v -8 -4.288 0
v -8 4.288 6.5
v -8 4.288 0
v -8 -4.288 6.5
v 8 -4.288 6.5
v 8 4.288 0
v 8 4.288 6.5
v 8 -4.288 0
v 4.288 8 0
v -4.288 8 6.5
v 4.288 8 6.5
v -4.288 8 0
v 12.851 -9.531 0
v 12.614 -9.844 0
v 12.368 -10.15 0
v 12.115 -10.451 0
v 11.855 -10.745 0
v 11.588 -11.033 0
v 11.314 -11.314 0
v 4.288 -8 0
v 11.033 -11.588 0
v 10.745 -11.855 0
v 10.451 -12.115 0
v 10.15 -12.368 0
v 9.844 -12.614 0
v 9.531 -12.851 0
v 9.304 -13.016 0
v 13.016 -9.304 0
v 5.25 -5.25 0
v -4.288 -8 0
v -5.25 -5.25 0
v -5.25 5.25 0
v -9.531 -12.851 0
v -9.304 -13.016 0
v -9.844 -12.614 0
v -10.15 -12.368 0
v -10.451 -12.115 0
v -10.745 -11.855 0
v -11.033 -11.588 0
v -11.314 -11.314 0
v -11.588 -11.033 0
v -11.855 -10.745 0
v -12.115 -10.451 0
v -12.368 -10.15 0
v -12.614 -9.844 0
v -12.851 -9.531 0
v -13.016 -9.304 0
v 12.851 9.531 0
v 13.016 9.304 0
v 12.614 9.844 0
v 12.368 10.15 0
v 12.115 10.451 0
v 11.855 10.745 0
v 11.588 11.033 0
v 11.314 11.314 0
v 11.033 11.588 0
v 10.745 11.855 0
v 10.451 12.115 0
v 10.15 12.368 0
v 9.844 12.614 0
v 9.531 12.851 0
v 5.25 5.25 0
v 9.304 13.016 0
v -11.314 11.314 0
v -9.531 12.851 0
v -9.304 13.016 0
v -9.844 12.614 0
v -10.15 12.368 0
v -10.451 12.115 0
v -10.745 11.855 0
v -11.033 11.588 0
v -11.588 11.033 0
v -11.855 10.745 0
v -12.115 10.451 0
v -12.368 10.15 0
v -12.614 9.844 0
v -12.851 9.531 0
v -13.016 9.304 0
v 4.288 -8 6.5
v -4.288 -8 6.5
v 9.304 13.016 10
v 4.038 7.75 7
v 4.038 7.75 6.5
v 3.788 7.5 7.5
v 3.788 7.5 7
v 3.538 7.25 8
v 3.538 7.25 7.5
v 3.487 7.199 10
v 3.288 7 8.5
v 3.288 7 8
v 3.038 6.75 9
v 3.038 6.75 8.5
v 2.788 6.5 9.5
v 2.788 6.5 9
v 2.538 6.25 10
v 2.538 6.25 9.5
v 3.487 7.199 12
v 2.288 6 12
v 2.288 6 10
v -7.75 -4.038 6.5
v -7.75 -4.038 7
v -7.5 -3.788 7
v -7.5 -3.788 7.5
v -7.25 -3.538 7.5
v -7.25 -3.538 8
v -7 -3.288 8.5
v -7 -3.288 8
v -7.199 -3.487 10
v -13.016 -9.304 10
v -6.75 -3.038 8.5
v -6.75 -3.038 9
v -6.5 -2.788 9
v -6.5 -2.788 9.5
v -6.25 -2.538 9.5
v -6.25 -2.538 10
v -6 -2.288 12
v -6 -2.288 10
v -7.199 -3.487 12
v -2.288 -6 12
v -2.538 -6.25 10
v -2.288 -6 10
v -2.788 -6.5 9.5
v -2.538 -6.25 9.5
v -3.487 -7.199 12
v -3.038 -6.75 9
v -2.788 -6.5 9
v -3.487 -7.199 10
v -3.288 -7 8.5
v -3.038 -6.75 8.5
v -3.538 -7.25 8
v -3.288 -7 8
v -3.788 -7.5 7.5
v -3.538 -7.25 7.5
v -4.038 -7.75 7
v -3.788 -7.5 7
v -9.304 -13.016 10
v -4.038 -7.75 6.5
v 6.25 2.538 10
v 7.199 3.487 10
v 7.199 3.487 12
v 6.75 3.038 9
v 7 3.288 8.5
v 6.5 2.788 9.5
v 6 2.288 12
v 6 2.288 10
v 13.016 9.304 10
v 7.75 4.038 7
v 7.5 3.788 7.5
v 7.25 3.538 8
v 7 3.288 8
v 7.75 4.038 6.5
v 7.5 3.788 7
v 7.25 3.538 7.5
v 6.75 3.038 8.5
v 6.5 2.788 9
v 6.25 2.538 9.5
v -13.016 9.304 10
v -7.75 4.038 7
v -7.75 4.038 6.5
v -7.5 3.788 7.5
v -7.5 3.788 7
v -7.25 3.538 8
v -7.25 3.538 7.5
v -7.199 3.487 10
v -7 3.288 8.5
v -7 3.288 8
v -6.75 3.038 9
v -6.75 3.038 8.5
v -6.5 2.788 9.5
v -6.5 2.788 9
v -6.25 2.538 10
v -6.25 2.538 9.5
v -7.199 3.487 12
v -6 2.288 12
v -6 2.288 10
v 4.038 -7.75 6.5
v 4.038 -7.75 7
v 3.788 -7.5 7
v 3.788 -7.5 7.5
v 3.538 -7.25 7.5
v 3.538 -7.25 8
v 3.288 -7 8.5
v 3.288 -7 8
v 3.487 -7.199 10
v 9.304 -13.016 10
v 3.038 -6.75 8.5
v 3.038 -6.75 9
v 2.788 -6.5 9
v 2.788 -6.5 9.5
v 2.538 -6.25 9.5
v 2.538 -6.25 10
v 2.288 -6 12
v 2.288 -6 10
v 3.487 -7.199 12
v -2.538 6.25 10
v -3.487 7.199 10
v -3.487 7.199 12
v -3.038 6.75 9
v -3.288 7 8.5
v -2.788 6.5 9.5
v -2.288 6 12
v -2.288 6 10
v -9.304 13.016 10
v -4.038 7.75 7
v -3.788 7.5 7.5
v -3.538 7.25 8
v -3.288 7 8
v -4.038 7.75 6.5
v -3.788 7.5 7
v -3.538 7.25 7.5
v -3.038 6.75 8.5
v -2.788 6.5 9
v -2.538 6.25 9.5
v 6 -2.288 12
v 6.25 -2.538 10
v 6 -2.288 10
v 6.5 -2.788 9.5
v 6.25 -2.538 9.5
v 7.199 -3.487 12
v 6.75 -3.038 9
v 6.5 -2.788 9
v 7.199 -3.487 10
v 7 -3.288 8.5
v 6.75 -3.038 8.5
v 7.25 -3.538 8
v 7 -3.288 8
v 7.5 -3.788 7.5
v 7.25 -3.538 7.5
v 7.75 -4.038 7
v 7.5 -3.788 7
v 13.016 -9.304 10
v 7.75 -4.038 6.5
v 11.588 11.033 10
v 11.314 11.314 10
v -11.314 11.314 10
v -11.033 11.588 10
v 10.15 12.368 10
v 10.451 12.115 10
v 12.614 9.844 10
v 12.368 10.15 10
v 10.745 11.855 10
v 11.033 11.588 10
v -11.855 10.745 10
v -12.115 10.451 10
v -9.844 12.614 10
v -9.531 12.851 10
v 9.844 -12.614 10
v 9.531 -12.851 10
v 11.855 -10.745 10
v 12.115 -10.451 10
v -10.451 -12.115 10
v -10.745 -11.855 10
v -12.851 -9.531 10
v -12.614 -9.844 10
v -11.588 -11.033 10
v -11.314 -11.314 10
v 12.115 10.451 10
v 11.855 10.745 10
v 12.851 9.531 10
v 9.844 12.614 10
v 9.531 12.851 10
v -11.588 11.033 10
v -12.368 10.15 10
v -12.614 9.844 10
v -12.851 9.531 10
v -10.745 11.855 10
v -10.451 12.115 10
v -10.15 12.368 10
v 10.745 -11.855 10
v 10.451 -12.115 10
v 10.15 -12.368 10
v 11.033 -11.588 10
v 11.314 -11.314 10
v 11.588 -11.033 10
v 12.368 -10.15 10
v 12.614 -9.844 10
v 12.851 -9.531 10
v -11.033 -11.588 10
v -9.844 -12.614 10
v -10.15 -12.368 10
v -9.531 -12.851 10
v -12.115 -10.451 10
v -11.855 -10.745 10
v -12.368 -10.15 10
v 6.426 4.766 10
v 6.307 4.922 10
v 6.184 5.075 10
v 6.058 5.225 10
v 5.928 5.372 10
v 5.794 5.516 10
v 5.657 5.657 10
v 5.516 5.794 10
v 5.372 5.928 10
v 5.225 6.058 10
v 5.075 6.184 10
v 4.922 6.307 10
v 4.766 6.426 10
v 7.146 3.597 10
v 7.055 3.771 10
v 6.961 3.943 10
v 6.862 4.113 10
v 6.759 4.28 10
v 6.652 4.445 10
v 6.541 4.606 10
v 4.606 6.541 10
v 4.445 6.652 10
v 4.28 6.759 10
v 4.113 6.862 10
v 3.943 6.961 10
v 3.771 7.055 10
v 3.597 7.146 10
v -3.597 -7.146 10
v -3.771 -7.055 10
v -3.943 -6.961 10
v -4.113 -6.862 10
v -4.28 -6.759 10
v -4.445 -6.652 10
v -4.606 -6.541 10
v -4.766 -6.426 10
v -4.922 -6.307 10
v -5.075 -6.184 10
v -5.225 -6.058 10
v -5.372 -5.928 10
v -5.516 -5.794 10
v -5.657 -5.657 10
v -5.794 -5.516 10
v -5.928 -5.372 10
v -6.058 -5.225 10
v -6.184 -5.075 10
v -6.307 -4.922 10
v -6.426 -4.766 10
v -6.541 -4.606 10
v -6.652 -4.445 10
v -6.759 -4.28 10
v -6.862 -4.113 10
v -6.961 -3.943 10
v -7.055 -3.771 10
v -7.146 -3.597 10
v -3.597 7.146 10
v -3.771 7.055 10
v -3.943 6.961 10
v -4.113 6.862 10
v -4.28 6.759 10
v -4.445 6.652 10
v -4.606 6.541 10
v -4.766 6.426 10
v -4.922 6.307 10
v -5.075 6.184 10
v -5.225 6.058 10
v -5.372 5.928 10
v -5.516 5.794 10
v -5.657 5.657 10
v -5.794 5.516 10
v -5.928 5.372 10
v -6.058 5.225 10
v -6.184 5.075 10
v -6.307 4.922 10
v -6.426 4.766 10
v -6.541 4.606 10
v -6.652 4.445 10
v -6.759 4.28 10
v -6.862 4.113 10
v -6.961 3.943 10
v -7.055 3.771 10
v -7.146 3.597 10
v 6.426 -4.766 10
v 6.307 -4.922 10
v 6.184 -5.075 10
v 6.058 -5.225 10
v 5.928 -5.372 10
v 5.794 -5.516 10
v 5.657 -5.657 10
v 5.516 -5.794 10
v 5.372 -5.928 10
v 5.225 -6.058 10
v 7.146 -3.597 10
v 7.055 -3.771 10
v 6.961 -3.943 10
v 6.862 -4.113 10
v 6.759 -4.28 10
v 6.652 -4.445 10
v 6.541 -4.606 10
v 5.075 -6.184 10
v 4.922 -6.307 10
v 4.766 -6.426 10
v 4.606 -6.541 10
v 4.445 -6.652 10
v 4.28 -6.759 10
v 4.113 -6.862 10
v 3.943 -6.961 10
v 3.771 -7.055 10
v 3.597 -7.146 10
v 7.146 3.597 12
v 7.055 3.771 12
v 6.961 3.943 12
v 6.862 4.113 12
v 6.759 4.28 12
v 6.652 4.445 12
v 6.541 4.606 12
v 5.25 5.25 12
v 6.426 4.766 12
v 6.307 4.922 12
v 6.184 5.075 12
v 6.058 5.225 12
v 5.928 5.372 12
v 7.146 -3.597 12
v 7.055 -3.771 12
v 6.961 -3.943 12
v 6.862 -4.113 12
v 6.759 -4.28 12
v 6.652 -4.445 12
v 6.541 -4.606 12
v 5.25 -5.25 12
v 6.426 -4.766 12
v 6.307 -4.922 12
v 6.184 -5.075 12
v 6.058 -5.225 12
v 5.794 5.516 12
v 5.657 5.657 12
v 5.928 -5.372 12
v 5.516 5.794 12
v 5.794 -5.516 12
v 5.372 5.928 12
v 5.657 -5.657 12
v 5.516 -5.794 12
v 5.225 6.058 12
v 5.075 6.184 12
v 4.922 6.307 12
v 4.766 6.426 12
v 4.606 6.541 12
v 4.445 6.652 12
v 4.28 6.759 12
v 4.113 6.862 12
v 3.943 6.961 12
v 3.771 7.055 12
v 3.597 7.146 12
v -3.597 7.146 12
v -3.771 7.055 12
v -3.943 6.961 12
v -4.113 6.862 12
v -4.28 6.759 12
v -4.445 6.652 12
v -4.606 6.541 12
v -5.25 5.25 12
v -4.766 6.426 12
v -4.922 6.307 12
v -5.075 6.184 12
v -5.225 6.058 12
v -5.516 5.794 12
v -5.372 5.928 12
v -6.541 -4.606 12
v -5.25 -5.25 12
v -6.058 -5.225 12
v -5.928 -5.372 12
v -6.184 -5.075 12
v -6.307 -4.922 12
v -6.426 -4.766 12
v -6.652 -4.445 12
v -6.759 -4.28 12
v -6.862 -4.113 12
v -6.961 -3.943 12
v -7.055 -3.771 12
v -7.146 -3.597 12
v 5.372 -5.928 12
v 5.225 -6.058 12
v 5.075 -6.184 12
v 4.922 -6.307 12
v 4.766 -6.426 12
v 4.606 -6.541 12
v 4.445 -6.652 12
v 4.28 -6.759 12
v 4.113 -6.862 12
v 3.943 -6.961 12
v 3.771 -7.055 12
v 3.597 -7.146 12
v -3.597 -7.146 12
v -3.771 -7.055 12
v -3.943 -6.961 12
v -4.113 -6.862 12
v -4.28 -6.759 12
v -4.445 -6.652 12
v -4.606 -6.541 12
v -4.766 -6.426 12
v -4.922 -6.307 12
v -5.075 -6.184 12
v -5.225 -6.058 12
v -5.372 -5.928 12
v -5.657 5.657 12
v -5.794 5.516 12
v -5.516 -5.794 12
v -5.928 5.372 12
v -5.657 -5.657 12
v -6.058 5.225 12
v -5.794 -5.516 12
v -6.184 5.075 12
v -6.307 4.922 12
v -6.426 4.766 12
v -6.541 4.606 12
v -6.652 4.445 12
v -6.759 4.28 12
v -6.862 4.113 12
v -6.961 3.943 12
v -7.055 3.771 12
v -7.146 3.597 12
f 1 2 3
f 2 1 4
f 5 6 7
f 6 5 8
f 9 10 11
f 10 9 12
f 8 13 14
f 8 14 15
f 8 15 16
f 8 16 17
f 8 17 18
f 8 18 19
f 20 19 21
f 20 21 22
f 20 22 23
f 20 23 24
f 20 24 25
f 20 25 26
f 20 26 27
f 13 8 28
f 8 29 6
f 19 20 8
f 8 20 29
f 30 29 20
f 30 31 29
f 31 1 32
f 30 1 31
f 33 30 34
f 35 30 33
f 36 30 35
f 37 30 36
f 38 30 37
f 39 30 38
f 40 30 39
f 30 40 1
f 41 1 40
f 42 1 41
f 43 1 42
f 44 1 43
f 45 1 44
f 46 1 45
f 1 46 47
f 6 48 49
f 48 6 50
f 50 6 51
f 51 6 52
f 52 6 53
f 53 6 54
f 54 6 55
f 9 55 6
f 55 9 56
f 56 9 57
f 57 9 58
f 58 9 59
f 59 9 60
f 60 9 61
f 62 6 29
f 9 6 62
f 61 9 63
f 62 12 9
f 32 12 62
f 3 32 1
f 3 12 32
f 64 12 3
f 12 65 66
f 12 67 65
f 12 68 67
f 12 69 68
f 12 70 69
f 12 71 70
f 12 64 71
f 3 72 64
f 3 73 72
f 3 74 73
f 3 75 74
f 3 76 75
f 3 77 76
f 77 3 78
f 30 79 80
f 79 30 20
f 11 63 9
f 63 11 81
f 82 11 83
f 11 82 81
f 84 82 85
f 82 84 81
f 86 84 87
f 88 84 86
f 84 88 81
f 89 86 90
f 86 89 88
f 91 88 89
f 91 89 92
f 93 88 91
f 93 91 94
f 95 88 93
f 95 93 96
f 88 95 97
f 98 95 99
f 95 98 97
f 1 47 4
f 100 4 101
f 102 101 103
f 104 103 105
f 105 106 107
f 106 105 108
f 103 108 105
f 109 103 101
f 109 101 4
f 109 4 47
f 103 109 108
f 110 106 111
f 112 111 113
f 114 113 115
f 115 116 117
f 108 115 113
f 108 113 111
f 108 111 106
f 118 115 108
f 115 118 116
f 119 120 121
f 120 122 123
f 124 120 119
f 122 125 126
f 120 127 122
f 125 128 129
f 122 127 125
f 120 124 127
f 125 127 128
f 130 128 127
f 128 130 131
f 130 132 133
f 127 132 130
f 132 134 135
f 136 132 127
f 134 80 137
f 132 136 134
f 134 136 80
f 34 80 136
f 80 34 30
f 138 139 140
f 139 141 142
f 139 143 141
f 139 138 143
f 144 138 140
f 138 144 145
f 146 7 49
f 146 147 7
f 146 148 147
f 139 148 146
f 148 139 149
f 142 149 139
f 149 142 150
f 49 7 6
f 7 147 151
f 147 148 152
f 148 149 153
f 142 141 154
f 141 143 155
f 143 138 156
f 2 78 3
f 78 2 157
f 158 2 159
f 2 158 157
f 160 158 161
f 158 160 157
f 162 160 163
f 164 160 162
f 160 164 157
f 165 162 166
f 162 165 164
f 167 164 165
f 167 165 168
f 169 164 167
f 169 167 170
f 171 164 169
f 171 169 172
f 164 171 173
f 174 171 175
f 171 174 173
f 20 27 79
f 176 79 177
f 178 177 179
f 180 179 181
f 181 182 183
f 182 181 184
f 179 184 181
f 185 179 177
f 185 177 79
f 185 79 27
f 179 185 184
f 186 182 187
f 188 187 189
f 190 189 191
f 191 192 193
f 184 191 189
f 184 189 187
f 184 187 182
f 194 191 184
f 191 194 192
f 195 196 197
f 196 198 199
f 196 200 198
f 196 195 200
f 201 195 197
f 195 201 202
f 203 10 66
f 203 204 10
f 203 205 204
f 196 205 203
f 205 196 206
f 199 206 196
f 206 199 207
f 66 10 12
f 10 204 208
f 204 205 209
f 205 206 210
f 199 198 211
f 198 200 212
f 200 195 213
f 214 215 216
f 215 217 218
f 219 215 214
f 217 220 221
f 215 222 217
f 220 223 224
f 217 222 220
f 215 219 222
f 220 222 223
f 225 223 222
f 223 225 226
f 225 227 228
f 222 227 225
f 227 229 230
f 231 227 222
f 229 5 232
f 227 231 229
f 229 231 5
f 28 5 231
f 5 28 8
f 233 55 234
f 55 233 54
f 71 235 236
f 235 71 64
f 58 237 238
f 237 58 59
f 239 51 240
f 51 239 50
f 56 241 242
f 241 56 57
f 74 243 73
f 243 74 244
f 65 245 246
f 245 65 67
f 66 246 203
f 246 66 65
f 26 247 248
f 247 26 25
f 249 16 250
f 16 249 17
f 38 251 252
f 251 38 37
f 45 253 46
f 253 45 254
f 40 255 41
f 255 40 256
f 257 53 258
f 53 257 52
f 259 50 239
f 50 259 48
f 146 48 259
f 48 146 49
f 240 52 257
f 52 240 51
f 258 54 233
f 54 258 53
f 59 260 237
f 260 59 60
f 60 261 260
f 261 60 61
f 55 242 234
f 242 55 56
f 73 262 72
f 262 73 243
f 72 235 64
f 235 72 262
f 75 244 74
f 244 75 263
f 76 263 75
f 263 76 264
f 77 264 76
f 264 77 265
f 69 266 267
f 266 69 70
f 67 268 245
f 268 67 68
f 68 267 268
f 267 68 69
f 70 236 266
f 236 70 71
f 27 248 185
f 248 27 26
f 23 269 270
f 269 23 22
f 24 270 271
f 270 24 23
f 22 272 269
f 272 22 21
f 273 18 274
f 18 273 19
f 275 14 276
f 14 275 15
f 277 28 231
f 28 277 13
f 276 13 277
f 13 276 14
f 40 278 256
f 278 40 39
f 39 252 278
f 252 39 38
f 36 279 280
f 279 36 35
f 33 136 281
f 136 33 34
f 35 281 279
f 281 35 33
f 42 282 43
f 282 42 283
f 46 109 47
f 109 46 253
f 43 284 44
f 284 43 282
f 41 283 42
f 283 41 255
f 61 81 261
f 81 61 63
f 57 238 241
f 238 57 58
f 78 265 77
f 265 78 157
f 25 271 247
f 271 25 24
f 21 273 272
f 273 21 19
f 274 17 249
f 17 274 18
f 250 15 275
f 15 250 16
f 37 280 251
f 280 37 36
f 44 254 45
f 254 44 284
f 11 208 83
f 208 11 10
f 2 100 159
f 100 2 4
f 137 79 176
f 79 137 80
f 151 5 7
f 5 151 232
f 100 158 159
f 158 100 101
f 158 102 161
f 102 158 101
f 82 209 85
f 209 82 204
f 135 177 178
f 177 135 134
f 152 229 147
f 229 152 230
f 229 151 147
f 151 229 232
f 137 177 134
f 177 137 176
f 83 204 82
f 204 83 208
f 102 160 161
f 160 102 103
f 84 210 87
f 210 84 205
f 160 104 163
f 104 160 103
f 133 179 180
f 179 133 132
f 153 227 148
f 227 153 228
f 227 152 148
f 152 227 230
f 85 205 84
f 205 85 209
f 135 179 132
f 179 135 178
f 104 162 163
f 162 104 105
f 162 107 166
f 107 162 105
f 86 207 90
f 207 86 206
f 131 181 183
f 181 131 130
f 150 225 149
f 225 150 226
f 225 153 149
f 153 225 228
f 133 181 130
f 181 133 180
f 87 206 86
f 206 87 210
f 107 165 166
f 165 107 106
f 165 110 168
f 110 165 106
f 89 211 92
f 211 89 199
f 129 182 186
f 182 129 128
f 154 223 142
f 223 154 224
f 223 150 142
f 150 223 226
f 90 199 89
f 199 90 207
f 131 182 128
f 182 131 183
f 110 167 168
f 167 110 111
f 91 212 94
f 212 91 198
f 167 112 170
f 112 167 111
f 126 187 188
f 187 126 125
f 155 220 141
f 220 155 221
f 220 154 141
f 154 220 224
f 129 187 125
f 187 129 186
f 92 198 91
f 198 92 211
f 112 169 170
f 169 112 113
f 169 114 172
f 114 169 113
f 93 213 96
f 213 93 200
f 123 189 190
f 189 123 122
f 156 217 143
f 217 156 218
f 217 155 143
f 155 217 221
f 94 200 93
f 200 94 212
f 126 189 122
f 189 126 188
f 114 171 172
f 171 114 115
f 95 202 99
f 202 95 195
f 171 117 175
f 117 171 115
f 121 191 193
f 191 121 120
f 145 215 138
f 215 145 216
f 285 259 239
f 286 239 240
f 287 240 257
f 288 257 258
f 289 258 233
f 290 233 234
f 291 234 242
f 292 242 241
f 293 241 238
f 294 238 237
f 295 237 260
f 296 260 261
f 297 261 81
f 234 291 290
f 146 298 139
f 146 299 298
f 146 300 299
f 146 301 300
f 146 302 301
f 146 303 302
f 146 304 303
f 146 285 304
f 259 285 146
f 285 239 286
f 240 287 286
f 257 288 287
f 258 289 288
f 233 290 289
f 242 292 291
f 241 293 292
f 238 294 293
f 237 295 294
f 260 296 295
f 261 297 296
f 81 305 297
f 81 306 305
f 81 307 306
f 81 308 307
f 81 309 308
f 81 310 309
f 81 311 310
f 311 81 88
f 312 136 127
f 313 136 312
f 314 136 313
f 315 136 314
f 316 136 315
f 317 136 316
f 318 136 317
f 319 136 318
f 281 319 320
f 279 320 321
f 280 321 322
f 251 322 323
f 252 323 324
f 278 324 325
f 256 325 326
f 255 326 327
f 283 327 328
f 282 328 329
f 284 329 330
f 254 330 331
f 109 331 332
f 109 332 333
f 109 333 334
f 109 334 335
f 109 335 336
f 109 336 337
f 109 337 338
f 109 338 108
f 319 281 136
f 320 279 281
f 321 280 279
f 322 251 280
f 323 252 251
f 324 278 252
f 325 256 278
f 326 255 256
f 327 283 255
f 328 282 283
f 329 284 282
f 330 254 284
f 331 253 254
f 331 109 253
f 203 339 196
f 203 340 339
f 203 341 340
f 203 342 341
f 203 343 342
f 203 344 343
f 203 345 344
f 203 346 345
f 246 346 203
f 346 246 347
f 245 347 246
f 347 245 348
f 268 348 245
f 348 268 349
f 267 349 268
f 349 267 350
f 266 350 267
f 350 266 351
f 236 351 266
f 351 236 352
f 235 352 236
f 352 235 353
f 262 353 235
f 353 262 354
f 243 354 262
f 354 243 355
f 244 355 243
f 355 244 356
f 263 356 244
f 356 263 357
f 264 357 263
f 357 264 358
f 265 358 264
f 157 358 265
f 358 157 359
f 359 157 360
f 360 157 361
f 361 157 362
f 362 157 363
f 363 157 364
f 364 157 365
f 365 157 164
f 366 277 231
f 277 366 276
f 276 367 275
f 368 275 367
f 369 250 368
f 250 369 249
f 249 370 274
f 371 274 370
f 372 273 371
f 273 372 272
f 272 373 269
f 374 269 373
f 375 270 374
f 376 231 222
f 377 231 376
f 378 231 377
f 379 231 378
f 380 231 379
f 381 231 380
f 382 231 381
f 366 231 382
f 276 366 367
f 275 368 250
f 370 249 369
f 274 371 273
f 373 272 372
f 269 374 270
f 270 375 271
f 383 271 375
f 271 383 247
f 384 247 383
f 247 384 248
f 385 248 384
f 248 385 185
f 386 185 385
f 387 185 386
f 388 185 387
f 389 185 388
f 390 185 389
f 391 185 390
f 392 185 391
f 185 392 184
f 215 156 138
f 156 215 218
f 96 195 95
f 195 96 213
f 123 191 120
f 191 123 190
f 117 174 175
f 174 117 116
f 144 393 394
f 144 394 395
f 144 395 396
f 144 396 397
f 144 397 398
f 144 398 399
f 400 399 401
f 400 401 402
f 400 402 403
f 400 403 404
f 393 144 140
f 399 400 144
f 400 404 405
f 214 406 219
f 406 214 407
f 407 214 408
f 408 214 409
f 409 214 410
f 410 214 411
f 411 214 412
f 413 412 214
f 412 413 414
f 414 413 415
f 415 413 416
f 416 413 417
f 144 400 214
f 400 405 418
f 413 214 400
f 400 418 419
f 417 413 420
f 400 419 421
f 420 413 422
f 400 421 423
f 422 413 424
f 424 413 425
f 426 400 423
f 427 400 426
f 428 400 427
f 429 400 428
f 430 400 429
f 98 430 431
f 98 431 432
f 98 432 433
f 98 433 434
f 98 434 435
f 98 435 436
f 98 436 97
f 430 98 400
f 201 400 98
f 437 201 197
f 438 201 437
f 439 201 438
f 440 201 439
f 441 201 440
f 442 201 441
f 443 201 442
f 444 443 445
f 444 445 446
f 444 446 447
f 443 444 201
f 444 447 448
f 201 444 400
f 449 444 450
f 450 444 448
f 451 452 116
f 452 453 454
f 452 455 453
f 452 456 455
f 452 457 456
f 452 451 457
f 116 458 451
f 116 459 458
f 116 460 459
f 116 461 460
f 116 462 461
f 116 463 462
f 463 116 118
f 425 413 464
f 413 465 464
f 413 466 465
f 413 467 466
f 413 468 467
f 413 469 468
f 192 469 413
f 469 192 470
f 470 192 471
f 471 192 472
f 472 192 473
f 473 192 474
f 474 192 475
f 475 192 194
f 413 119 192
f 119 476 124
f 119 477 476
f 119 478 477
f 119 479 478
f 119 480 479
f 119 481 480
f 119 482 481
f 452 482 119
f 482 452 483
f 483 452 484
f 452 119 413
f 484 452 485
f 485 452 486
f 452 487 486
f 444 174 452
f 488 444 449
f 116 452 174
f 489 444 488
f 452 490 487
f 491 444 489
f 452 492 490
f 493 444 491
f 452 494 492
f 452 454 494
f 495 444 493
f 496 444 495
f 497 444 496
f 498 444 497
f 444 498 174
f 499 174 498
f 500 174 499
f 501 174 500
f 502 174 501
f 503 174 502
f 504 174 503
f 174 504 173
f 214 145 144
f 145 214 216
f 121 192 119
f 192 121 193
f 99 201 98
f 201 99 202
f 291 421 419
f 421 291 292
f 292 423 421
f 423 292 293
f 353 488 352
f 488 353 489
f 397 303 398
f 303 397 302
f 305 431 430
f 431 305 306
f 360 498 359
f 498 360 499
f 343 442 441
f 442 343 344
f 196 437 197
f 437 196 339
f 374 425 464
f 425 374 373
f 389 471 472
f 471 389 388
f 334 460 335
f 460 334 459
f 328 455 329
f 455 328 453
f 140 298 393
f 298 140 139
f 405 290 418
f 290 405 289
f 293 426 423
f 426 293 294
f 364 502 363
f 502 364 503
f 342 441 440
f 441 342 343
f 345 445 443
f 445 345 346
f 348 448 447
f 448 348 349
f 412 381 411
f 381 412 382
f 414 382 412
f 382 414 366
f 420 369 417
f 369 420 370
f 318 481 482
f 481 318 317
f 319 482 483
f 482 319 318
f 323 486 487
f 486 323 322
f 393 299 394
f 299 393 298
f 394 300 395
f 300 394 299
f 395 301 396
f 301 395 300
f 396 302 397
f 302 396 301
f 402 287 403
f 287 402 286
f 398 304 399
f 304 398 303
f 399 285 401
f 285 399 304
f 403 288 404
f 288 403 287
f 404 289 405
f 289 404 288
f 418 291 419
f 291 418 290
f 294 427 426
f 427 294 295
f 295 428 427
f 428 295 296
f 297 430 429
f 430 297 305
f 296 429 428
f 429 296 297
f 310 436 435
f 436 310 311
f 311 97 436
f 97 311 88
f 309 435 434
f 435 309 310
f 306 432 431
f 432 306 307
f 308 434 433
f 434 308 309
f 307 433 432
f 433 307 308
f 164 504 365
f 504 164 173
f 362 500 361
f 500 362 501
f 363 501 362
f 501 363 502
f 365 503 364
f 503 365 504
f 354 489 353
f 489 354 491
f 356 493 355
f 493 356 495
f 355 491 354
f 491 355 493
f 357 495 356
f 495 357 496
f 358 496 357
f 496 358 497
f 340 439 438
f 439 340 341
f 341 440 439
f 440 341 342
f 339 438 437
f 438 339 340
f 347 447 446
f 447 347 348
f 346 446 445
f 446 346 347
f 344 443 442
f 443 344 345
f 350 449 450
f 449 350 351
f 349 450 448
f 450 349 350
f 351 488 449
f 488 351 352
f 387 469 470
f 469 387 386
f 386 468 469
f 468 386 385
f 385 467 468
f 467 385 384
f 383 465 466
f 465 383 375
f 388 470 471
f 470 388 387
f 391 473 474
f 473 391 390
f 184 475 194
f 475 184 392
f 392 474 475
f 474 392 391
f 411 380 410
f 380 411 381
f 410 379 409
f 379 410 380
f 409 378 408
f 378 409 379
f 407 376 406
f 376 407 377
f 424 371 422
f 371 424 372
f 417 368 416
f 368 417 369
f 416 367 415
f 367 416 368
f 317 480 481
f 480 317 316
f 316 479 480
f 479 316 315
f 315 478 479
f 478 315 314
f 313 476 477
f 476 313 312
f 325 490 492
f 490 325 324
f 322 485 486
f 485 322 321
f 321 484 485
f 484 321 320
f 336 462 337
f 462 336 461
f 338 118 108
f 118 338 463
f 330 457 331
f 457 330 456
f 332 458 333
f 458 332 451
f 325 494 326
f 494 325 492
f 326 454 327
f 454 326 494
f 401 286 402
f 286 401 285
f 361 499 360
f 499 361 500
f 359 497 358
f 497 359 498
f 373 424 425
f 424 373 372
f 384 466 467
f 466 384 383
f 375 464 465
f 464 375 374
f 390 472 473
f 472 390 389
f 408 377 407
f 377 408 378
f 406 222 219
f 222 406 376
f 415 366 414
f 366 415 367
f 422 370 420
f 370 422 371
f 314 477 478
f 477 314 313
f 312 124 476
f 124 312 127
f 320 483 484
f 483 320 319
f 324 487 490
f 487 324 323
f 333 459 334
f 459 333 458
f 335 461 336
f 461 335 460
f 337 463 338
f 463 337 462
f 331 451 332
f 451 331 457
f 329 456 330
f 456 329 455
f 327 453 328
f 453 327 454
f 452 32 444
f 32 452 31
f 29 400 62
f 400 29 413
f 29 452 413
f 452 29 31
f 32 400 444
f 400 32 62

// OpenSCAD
difference(){
	union() {
		union() {
			union() {
				union() {
					union() {
						union() {
							union() {
								union() {
									union() {
										translate(v = [0, 0, 3.0000000000]) {
											intersection() {
												union() {
													union() {
														difference() {
															cube(center = true, size = [16, 16, 6]);
														}
														rotate(a = 45) {
															cube(center = true, size = [32, 5.2500000000, 6]);
														}
													}
													rotate(a = -45) {
														cube(center = true, size = [32, 5.2500000000, 6]);
													}
												}
												cylinder($fn = 256, center = true, d = 32, h = 6);
											}
										}
										translate(v = [0, 0, 6.2500000000]) {
											intersection() {
												union() {
													union() {
														difference() {
															cube(center = true, size = [16.0000000000, 16.0000000000, 0.5000000000]);
														}
														rotate(a = 45) {
															cube(center = true, size = [32, 5.2500000000, 0.5000000000]);
														}
													}
													rotate(a = -45) {
														cube(center = true, size = [32, 5.2500000000, 0.5000000000]);
													}
												}
												cylinder($fn = 256, center = true, d = 32, h = 0.5000000000);
											}
										}
									}
									translate(v = [0, 0, 6.7500000000]) {
										intersection() {
											union() {
												union() {
													difference() {
														cube(center = true, size = [15.5000000000, 15.5000000000, 0.5000000000]);
													}
													rotate(a = 45) {
														cube(center = true, size = [32, 5.2500000000, 0.5000000000]);
													}
												}
												rotate(a = -45) {
													cube(center = true, size = [32, 5.2500000000, 0.5000000000]);
												}
											}
											cylinder($fn = 256, center = true, d = 32, h = 0.5000000000);
										}
									}
								}
								translate(v = [0, 0, 7.2500000000]) {
									intersection() {
										union() {
											union() {
												difference() {
													cube(center = true, size = [15.0000000000, 15.0000000000, 0.5000000000]);
												}
												rotate(a = 45) {
													cube(center = true, size = [32, 5.2500000000, 0.5000000000]);
												}
											}
											rotate(a = -45) {
												cube(center = true, size = [32, 5.2500000000, 0.5000000000]);
											}
										}
										cylinder($fn = 256, center = true, d = 32, h = 0.5000000000);
									}
								}
							}
							translate(v = [0, 0, 7.7500000000]) {
								intersection() {
									union() {
										union() {
											difference() {
												cube(center = true, size = [14.5000000000, 14.5000000000, 0.5000000000]);
											}
											rotate(a = 45) {
												cube(center = true, size = [32, 5.2500000000, 0.5000000000]);
											}
										}
										rotate(a = -45) {
											cube(center = true, size = [32, 5.2500000000, 0.5000000000]);
										}
									}
									cylinder($fn = 256, center = true, d = 32, h = 0.5000000000);
								}
							}
						}
						translate(v = [0, 0, 8.2500000000]) {
							intersection() {
								union() {
									union() {
										difference() {
											cube(center = true, size = [14.0000000000, 14.0000000000, 0.5000000000]);
										}
										rotate(a = 45) {
											cube(center = true, size = [32, 5.2500000000, 0.5000000000]);
										}
									}
									rotate(a = -45) {
										cube(center = true, size = [32, 5.2500000000, 0.5000000000]);
									}
								}
								cylinder($fn = 256, center = true, d = 32, h = 0.5000000000);
							}
						}
					}
					translate(v = [0, 0, 8.7500000000]) {
						intersection() {
							union() {
								union() {
									difference() {
										cube(center = true, size = [13.5000000000, 13.5000000000, 0.5000000000]);
									}
									rotate(a = 45) {
										cube(center = true, size = [32, 5.2500000000, 0.5000000000]);
									}
								}
								rotate(a = -45) {
									cube(center = true, size = [32, 5.2500000000, 0.5000000000]);
								}
							}
							cylinder($fn = 256, center = true, d = 32, h = 0.5000000000);
						}
					}
				}
				translate(v = [0, 0, 9.2500000000]) {
					intersection() {
						union() {
							union() {
								difference() {
									cube(center = true, size = [13.0000000000, 13.0000000000, 0.5000000000]);
								}
								rotate(a = 45) {
									cube(center = true, size = [32, 5.2500000000, 0.5000000000]);
								}
							}
							rotate(a = -45) {
								cube(center = true, size = [32, 5.2500000000, 0.5000000000]);
							}
						}
						cylinder($fn = 256, center = true, d = 32, h = 0.5000000000);
					}
				}
			}
			translate(v = [0, 0, 9.7500000000]) {
				intersection() {
					union() {
						union() {
							difference() {
								cube(center = true, size = [12.5000000000, 12.5000000000, 0.5000000000]);
							}
							rotate(a = 45) {
								cube(center = true, size = [32, 5.2500000000, 0.5000000000]);
							}
						}
						rotate(a = -45) {
							cube(center = true, size = [32, 5.2500000000, 0.5000000000]);
						}
					}
					cylinder($fn = 256, center = true, d = 32, h = 0.5000000000);
				}
			}
		}
		translate(v = [0, 0, 11.0000000000]) {
			intersection() {
				union() {
					union() {
						difference() {
							cube(center = true, size = [12, 12, 2]);
						}
						rotate(a = 45) {
							cube(center = true, size = [16, 5.2500000000, 2]);
						}
					}
					rotate(a = -45) {
						cube(center = true, size = [16, 5.2500000000, 2]);
					}
				}
				cylinder($fn = 256, center = true, d = 16, h = 2);
			}
		}
	}
	/* Holes Below*/
	union(){
		union(){
			union(){
				union(){
					union(){
						union(){
							union(){
								union(){
									union(){
										translate(v = [0, 0, 3.0000000000]){
											union(){
												union(){
													union(){
														union(){
															cube(center = true, size = [10.5000000000, 10.5000000000, 12]);
														}
													}
												}
											}
										}
										translate(v = [0, 0, 6.2500000000]){
											union(){
												union(){
													union(){
														union(){
															cube(center = true, size = [10.5000000000, 10.5000000000, 1.0000000000]);
														}
													}
												}
											}
										}
									}
									translate(v = [0, 0, 6.7500000000]){
										union(){
											union(){
												union(){
													union(){
														cube(center = true, size = [10.5000000000, 10.5000000000, 1.0000000000]);
													}
												}
											}
										}
									}
								}
								translate(v = [0, 0, 7.2500000000]){
									union(){
										union(){
											union(){
												union(){
													cube(center = true, size = [10.5000000000, 10.5000000000, 1.0000000000]);
												}
											}
										}
									}
								}
							}
							translate(v = [0, 0, 7.7500000000]){
								union(){
									union(){
										union(){
											union(){
												cube(center = true, size = [10.5000000000, 10.5000000000, 1.0000000000]);
											}
										}
									}
								}
							}
						}
						translate(v = [0, 0, 8.2500000000]){
							union(){
								union(){
									union(){
										union(){
											cube(center = true, size = [10.5000000000, 10.5000000000, 1.0000000000]);
										}
									}
								}
							}
						}
					}
					translate(v = [0, 0, 8.7500000000]){
						union(){
							union(){
								union(){
									union(){
										cube(center = true, size = [10.5000000000, 10.5000000000, 1.0000000000]);
									}
								}
							}
						}
					}
				}
				translate(v = [0, 0, 9.2500000000]){
					union(){
						union(){
							union(){
								union(){
									cube(center = true, size = [10.5000000000, 10.5000000000, 1.0000000000]);
								}
							}
						}
					}
				}
			}
			translate(v = [0, 0, 9.7500000000]){
				union(){
					union(){
						union(){
							union(){
								cube(center = true, size = [10.5000000000, 10.5000000000, 1.0000000000]);
							}
						}
					}
				}
			}
		}
		translate(v = [0, 0, 11.0000000000]){
			intersection(){
				union(){
					union(){
						difference(){
							cube(center = true, size = [10.5000000000, 10.5000000000, 4]);
						}
					}
				}
			}
		}
	} /* End Holes */ 
}
